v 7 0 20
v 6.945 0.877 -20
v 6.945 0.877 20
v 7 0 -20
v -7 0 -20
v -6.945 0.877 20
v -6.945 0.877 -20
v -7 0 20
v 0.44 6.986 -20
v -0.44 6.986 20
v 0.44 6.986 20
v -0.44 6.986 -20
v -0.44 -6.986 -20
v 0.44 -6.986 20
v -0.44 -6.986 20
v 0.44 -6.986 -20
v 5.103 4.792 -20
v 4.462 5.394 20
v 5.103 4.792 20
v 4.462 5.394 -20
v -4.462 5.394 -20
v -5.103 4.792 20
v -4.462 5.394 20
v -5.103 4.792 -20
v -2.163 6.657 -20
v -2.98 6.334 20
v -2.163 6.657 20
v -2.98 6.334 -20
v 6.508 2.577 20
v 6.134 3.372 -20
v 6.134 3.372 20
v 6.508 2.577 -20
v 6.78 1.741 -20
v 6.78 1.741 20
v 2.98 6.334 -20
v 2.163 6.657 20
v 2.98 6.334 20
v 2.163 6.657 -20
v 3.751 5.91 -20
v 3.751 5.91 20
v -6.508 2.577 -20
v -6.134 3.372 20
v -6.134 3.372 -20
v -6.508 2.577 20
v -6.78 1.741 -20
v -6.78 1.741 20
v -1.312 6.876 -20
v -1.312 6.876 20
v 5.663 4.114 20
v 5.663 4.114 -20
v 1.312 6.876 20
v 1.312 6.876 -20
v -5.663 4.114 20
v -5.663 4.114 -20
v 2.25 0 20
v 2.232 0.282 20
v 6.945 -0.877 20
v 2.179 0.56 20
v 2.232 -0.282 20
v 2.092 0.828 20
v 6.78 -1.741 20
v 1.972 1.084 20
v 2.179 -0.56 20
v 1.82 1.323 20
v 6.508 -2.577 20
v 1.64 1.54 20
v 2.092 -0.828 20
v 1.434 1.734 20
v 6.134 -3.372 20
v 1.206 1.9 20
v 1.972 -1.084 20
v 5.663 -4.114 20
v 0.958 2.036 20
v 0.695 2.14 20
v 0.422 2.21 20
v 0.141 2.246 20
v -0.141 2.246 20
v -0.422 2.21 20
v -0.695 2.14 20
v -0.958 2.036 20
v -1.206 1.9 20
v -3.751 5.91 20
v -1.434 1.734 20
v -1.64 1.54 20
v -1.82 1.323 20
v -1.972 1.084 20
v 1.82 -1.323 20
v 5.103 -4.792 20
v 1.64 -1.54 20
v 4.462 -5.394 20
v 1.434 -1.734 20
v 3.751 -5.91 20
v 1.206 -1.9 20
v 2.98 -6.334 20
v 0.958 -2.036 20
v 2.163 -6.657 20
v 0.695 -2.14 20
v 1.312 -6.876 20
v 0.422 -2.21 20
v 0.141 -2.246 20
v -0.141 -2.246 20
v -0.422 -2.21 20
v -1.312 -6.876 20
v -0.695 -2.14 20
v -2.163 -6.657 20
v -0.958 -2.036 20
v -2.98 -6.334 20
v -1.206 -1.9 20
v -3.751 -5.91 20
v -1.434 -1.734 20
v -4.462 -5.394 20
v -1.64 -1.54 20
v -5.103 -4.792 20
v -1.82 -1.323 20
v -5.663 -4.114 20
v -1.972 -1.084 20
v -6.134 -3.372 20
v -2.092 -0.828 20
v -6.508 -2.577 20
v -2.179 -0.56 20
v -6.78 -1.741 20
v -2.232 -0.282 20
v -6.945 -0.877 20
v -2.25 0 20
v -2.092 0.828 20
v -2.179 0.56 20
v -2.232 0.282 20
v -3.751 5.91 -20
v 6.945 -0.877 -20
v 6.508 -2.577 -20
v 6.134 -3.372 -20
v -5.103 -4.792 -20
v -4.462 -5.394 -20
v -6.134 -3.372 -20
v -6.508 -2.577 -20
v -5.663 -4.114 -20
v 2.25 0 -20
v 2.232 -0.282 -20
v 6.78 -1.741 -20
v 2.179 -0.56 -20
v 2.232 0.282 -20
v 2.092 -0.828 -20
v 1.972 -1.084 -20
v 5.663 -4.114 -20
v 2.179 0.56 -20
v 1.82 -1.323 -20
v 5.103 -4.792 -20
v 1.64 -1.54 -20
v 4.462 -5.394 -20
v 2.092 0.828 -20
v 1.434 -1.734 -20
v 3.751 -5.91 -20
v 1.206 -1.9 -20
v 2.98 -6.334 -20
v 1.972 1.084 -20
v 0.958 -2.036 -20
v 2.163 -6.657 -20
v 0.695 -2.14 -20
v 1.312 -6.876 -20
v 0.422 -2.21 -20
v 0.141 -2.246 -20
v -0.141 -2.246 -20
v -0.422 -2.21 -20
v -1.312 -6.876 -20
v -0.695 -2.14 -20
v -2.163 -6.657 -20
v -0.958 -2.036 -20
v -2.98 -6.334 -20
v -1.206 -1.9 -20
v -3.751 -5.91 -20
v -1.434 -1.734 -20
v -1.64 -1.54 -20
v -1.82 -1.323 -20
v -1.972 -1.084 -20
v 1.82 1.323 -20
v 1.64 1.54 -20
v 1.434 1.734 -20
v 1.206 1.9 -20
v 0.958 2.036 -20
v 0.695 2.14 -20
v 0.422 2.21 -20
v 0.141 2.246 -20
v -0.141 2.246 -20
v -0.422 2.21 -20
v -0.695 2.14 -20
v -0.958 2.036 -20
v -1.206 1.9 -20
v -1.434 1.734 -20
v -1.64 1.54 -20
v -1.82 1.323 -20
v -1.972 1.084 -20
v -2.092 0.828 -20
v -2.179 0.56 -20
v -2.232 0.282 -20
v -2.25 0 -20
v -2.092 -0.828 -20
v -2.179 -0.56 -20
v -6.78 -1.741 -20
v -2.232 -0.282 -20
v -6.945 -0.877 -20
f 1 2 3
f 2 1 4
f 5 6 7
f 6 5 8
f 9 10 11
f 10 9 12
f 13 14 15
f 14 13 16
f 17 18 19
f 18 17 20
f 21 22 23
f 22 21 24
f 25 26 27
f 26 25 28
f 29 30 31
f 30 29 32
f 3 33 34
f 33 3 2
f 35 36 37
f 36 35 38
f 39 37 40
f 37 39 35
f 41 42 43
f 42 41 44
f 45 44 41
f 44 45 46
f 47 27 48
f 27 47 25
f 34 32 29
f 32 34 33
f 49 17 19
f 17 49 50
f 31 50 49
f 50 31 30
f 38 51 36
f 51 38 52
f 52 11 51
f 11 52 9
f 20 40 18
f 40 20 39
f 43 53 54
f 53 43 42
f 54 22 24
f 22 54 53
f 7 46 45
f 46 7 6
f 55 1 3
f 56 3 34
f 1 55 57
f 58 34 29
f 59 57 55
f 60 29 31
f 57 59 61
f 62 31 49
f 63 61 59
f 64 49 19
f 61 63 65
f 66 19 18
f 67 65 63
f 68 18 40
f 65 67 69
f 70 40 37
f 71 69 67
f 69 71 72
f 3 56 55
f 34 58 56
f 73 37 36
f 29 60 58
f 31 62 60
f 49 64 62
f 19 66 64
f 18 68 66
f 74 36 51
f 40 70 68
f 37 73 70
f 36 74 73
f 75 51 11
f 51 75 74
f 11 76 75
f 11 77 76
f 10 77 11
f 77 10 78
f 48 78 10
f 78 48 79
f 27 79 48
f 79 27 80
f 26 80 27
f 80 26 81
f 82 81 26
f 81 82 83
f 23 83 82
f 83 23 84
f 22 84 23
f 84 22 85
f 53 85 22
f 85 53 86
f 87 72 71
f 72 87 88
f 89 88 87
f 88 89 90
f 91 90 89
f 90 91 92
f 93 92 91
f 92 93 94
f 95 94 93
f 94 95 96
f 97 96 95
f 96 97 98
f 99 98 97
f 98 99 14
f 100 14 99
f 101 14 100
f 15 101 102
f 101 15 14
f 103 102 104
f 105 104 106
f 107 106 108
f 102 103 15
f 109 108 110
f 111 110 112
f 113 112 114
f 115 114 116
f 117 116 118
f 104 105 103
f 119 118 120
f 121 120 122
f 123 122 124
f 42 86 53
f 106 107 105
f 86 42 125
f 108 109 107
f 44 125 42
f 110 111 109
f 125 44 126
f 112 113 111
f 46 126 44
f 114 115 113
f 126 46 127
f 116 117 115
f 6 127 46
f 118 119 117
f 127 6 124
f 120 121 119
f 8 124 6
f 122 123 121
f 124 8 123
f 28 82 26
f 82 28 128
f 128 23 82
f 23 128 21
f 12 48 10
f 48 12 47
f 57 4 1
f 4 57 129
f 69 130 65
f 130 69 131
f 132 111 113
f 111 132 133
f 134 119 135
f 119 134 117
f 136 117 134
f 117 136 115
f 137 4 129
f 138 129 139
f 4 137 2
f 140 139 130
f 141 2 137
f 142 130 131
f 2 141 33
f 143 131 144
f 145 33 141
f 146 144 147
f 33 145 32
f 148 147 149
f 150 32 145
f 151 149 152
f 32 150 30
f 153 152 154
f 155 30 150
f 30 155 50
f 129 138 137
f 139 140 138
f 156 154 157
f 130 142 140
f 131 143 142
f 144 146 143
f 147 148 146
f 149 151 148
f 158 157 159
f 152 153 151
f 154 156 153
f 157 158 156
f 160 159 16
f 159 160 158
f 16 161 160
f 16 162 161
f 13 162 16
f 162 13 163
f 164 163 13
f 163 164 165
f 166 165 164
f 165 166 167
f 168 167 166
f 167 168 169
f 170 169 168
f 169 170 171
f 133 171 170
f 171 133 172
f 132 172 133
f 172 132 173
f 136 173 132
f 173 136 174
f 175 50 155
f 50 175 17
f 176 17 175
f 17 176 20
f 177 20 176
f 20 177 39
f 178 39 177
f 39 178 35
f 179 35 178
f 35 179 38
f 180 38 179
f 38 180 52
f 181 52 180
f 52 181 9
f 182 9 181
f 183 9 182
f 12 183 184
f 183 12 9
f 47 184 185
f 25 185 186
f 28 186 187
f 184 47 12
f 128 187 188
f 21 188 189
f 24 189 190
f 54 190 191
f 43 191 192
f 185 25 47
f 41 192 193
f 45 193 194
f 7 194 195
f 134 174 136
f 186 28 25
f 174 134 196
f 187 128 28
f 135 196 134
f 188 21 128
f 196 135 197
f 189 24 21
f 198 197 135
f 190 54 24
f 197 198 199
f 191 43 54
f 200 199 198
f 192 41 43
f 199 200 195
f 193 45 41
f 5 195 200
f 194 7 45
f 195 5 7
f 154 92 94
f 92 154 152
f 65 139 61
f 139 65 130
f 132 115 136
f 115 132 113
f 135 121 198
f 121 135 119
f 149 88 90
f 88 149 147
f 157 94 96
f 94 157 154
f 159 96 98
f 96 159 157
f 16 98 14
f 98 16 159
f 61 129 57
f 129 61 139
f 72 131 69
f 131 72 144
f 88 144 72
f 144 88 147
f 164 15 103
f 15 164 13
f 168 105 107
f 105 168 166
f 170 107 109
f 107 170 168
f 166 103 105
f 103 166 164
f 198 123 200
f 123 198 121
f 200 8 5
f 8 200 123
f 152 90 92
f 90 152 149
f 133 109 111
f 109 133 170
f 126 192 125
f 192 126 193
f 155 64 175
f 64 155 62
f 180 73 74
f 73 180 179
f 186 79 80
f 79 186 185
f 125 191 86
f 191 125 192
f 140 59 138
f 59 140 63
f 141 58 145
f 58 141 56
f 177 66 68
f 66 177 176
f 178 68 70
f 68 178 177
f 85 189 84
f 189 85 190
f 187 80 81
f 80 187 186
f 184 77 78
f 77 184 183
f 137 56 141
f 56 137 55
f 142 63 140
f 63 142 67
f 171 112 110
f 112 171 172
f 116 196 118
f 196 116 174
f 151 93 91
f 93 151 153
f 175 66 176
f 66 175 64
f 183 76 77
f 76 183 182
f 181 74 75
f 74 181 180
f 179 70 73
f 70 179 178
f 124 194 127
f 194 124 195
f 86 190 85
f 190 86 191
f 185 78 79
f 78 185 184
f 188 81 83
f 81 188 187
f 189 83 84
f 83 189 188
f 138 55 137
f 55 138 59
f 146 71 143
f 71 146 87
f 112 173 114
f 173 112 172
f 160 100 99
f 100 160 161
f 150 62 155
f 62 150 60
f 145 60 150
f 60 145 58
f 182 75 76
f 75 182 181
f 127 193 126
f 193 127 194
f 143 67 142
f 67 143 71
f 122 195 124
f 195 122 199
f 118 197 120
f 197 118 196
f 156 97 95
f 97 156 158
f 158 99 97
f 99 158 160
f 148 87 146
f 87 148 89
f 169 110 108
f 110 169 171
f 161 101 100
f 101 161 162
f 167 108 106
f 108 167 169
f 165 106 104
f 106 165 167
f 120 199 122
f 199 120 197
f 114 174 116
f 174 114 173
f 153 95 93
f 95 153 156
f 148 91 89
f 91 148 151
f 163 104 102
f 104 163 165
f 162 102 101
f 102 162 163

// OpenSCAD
$fn = 50;


difference() {
	union() {
		translate(v = [0, 0, -20.0000000000]) {
			cylinder(h = 40, r = 7.0000000000);
		}
	}
	union() {
		translate(v = [0, 0, -100.0000000000]) {
			cylinder(h = 200, r = 2.2500000000);
		}
	}
}
